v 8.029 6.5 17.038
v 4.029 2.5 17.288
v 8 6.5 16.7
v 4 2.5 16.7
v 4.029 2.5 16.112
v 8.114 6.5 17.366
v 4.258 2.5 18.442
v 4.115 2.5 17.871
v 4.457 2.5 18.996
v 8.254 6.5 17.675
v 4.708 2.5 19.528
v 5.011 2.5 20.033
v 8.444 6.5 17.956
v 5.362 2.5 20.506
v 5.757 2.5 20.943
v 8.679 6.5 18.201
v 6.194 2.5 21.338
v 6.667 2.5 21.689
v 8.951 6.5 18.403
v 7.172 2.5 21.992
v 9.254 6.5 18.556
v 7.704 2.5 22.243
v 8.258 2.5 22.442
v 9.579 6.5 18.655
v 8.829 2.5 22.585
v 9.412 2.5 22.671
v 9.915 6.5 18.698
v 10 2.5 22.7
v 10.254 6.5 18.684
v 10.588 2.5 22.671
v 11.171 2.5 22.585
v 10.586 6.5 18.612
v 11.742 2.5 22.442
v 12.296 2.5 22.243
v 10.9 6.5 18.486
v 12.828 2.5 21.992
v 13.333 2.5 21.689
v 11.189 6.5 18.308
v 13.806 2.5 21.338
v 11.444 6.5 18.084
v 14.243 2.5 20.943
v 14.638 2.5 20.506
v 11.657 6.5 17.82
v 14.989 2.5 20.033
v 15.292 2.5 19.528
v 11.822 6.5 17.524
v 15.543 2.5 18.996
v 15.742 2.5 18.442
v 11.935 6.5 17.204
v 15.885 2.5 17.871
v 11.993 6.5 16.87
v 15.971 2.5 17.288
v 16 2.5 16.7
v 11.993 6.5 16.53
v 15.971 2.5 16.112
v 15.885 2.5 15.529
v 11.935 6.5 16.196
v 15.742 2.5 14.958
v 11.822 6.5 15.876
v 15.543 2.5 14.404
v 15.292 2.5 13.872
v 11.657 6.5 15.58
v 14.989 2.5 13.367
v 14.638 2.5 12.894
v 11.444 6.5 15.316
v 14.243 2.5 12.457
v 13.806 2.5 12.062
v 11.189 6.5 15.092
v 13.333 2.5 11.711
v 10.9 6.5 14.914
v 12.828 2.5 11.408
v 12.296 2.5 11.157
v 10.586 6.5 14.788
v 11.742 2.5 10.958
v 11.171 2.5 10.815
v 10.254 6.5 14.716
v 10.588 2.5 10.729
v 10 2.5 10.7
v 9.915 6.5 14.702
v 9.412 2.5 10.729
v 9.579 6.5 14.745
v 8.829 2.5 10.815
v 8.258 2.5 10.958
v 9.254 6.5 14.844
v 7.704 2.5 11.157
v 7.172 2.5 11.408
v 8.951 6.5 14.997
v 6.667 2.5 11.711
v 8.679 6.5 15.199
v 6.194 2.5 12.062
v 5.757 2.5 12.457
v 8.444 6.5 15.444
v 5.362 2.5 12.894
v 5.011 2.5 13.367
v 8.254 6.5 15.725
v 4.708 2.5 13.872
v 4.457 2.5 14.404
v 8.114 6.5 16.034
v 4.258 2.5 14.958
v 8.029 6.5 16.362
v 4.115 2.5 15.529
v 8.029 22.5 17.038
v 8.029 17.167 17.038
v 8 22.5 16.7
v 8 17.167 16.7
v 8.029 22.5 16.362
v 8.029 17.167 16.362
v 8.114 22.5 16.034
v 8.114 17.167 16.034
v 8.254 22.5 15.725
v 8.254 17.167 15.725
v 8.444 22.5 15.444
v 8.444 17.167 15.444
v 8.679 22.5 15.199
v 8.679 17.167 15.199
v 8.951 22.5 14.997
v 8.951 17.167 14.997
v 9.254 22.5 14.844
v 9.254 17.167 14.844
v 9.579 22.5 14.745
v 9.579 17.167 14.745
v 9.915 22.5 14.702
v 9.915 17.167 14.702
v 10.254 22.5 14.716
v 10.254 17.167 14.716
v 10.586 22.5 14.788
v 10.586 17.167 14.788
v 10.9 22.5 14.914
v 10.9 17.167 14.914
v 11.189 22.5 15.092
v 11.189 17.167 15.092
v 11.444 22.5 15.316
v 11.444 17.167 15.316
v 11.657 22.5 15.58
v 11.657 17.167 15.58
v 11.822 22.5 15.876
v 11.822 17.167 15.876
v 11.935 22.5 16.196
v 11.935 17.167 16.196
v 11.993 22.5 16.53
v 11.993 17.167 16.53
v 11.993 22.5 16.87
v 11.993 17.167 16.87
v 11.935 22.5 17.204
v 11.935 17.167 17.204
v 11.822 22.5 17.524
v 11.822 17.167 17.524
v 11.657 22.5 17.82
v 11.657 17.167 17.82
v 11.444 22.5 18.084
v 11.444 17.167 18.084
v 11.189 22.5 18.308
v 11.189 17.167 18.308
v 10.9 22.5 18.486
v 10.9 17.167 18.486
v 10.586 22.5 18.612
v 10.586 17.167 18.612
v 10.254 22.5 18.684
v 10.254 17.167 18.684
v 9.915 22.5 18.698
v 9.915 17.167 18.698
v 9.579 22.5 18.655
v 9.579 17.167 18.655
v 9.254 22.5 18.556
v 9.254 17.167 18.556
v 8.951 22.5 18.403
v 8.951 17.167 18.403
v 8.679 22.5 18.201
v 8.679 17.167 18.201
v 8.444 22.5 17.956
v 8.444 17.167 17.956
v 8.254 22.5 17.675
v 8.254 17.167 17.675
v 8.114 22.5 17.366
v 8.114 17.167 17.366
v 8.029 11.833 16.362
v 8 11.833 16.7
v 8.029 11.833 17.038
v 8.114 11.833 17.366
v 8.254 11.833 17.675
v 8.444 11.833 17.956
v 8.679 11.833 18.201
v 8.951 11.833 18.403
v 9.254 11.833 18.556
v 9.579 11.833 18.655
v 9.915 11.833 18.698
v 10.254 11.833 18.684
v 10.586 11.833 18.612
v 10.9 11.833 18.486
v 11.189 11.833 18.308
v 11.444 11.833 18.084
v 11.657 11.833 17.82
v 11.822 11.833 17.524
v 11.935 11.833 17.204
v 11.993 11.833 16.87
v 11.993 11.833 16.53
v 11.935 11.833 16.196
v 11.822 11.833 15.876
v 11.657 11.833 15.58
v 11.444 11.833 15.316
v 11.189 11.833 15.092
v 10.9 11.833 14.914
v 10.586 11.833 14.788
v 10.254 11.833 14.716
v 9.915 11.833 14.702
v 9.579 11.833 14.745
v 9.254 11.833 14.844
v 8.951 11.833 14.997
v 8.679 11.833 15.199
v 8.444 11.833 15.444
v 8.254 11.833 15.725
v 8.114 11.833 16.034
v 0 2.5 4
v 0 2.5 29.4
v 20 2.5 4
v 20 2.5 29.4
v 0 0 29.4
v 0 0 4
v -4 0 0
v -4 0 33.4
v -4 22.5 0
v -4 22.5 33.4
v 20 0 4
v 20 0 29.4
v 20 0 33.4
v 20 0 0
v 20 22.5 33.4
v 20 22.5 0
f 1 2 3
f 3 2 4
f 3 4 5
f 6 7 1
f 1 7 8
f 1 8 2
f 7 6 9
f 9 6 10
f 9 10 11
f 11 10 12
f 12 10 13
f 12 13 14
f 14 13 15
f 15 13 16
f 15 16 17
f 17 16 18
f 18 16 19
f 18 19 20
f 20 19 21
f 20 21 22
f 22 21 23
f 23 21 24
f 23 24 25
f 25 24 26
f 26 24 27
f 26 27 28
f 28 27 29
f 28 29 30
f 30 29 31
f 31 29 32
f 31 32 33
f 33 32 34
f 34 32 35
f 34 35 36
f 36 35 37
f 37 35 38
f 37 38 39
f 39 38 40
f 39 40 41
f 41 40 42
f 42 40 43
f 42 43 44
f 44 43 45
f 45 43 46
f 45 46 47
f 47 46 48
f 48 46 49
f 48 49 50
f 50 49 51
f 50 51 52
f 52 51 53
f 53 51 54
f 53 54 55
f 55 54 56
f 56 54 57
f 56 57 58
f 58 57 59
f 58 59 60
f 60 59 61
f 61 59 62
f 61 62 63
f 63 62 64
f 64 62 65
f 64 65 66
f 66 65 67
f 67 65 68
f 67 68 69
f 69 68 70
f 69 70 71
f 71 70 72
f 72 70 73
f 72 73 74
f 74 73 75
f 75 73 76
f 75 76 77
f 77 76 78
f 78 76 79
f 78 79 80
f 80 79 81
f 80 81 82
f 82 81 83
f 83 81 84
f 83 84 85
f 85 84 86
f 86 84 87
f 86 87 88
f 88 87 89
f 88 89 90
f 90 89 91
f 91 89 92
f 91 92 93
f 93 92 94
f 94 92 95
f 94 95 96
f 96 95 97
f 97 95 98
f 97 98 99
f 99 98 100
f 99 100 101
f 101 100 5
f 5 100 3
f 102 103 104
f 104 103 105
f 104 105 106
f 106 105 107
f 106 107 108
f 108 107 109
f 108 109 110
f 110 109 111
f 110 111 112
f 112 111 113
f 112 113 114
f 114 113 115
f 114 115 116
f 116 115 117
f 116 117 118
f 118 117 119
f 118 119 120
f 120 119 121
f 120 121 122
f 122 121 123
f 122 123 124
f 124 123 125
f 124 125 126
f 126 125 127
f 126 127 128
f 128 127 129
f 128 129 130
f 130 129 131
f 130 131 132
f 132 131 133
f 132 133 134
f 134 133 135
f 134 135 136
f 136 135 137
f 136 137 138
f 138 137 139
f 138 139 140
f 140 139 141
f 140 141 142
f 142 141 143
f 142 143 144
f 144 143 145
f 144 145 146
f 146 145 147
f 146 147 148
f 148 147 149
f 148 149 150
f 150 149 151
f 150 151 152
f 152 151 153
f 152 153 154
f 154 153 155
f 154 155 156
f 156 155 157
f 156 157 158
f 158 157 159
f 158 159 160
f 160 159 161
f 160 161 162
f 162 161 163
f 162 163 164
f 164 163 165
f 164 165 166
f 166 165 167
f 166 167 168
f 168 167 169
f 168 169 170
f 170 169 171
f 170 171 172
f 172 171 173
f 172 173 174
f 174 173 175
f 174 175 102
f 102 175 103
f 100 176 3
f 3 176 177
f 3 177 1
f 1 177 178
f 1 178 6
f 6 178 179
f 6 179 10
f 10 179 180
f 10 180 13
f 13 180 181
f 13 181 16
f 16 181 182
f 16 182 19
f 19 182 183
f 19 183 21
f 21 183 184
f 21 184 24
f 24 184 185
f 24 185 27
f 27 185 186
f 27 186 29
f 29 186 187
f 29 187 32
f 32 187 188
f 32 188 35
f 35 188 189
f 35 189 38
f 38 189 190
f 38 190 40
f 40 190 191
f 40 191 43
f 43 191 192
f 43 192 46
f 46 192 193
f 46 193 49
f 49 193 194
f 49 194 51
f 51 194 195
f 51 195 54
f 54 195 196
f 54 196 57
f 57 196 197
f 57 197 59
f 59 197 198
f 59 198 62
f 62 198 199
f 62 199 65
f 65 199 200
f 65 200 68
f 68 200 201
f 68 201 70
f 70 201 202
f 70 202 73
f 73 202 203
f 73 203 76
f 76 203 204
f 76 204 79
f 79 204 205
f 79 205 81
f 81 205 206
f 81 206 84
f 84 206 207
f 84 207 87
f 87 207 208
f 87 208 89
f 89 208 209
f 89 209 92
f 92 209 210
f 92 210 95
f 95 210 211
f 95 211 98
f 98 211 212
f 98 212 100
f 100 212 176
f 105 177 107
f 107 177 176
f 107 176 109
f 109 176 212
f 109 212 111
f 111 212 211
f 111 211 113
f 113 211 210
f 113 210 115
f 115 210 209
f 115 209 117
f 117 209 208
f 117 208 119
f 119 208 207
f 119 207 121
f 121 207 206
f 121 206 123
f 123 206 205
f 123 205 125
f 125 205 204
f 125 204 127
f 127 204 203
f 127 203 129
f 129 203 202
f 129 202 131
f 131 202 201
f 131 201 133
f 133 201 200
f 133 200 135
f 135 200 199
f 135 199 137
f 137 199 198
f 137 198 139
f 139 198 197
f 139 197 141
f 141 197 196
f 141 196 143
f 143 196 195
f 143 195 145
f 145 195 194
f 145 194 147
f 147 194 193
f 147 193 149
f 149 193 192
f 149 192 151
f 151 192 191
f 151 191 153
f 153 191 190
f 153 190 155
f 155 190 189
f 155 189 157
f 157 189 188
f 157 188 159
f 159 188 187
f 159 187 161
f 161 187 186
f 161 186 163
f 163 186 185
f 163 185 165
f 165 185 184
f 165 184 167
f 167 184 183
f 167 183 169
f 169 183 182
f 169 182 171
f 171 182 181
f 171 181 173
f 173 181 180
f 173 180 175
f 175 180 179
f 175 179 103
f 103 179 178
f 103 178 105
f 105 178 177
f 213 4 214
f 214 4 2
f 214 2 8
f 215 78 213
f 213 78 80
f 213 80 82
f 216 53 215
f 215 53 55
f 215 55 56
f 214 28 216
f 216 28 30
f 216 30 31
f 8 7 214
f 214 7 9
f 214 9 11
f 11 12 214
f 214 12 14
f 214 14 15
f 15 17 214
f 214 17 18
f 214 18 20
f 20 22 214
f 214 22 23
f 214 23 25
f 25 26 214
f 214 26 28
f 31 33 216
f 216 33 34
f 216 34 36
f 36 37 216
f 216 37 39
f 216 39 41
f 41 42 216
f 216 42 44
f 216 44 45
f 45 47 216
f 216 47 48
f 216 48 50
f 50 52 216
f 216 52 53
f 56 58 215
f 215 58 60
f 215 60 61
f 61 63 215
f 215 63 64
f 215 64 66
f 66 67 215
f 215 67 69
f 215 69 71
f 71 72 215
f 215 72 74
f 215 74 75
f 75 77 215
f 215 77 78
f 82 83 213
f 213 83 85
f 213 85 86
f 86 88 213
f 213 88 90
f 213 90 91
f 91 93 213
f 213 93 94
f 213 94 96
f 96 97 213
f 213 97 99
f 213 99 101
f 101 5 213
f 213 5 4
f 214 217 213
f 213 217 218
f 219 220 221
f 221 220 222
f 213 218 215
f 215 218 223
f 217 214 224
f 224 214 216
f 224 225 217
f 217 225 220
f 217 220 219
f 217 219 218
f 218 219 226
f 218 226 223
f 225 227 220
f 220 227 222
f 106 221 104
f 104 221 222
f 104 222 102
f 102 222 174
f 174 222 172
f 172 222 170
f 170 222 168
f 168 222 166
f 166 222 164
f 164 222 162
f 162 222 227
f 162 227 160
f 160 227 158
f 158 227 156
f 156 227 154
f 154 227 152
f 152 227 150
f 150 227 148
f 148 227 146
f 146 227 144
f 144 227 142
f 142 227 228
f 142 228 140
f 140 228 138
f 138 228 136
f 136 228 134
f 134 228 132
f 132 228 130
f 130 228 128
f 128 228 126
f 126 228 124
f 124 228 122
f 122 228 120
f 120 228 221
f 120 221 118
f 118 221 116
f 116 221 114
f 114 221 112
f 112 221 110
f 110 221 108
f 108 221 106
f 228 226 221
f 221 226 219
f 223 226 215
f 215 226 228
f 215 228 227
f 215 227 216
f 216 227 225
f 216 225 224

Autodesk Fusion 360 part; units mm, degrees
sketch "Sketch1" plane through (0, 0, 0) normal (1, 0, 0) x (0, 1, 0)
  line L0 (0, 0) -> (22.5, 0)
  line L1 (22.5, 0) -> (22.5, 33.4)
  line L2 (22.5, 33.4) -> (0, 33.4)
  line L3 (0, 33.4) -> (0, 29.4)
  line L4 (0, 29.4) -> (2.5, 29.4)
  line L5 (0, 0) -> (0, 4)
  line L6 (0, 4) -> (2.5, 4)
  line L7 (2.5, 29.4) -> (2.5, 4)
  line L8 (2.5, 29.4) -> (2.5, 33.4) construction
  line L9 (0, 29.4) -> (0, 4)
  dimension "d1" = 25.4
  dimension "d4" = 4
  dimension "d5" = 2.5
  dimension "d6" = 20
extrude "Extrude1" add sketch "Sketch1" along normal blind 20 contours L0 L1 L2 L3 L4 L5 L6 L7
extrude "Extrude2" add sketch "Sketch1" against normal blind 4
sketch "Sketch2" plane through (0, 2.5, 0) normal (0, -1, 0) x (1, 0, 0)
  line L0 (0, 29.4) -> (0, 4)
  line L1 (0, 4) -> (20, 4)
  line L2 (20, 4) -> (20, 29.4)
  line L3 (20, 29.4) -> (0, 29.4)
  circle A0 centre (10, 16.7) radius 2
  line L4 (10, 16.7) -> (10, 29.4) construction
  line L5 (10, 16.7) -> (0, 16.7) construction
  dimension "d11" = 4
extrude "Extrude3" cut sketch "Sketch2" against normal up to surface (20 mm away) contours A0
chamfer "Chamfer1" distance 4 angle 45 1 edges at (8.1353, 2.5, 17.4232)
equation "d1 = 1\""
